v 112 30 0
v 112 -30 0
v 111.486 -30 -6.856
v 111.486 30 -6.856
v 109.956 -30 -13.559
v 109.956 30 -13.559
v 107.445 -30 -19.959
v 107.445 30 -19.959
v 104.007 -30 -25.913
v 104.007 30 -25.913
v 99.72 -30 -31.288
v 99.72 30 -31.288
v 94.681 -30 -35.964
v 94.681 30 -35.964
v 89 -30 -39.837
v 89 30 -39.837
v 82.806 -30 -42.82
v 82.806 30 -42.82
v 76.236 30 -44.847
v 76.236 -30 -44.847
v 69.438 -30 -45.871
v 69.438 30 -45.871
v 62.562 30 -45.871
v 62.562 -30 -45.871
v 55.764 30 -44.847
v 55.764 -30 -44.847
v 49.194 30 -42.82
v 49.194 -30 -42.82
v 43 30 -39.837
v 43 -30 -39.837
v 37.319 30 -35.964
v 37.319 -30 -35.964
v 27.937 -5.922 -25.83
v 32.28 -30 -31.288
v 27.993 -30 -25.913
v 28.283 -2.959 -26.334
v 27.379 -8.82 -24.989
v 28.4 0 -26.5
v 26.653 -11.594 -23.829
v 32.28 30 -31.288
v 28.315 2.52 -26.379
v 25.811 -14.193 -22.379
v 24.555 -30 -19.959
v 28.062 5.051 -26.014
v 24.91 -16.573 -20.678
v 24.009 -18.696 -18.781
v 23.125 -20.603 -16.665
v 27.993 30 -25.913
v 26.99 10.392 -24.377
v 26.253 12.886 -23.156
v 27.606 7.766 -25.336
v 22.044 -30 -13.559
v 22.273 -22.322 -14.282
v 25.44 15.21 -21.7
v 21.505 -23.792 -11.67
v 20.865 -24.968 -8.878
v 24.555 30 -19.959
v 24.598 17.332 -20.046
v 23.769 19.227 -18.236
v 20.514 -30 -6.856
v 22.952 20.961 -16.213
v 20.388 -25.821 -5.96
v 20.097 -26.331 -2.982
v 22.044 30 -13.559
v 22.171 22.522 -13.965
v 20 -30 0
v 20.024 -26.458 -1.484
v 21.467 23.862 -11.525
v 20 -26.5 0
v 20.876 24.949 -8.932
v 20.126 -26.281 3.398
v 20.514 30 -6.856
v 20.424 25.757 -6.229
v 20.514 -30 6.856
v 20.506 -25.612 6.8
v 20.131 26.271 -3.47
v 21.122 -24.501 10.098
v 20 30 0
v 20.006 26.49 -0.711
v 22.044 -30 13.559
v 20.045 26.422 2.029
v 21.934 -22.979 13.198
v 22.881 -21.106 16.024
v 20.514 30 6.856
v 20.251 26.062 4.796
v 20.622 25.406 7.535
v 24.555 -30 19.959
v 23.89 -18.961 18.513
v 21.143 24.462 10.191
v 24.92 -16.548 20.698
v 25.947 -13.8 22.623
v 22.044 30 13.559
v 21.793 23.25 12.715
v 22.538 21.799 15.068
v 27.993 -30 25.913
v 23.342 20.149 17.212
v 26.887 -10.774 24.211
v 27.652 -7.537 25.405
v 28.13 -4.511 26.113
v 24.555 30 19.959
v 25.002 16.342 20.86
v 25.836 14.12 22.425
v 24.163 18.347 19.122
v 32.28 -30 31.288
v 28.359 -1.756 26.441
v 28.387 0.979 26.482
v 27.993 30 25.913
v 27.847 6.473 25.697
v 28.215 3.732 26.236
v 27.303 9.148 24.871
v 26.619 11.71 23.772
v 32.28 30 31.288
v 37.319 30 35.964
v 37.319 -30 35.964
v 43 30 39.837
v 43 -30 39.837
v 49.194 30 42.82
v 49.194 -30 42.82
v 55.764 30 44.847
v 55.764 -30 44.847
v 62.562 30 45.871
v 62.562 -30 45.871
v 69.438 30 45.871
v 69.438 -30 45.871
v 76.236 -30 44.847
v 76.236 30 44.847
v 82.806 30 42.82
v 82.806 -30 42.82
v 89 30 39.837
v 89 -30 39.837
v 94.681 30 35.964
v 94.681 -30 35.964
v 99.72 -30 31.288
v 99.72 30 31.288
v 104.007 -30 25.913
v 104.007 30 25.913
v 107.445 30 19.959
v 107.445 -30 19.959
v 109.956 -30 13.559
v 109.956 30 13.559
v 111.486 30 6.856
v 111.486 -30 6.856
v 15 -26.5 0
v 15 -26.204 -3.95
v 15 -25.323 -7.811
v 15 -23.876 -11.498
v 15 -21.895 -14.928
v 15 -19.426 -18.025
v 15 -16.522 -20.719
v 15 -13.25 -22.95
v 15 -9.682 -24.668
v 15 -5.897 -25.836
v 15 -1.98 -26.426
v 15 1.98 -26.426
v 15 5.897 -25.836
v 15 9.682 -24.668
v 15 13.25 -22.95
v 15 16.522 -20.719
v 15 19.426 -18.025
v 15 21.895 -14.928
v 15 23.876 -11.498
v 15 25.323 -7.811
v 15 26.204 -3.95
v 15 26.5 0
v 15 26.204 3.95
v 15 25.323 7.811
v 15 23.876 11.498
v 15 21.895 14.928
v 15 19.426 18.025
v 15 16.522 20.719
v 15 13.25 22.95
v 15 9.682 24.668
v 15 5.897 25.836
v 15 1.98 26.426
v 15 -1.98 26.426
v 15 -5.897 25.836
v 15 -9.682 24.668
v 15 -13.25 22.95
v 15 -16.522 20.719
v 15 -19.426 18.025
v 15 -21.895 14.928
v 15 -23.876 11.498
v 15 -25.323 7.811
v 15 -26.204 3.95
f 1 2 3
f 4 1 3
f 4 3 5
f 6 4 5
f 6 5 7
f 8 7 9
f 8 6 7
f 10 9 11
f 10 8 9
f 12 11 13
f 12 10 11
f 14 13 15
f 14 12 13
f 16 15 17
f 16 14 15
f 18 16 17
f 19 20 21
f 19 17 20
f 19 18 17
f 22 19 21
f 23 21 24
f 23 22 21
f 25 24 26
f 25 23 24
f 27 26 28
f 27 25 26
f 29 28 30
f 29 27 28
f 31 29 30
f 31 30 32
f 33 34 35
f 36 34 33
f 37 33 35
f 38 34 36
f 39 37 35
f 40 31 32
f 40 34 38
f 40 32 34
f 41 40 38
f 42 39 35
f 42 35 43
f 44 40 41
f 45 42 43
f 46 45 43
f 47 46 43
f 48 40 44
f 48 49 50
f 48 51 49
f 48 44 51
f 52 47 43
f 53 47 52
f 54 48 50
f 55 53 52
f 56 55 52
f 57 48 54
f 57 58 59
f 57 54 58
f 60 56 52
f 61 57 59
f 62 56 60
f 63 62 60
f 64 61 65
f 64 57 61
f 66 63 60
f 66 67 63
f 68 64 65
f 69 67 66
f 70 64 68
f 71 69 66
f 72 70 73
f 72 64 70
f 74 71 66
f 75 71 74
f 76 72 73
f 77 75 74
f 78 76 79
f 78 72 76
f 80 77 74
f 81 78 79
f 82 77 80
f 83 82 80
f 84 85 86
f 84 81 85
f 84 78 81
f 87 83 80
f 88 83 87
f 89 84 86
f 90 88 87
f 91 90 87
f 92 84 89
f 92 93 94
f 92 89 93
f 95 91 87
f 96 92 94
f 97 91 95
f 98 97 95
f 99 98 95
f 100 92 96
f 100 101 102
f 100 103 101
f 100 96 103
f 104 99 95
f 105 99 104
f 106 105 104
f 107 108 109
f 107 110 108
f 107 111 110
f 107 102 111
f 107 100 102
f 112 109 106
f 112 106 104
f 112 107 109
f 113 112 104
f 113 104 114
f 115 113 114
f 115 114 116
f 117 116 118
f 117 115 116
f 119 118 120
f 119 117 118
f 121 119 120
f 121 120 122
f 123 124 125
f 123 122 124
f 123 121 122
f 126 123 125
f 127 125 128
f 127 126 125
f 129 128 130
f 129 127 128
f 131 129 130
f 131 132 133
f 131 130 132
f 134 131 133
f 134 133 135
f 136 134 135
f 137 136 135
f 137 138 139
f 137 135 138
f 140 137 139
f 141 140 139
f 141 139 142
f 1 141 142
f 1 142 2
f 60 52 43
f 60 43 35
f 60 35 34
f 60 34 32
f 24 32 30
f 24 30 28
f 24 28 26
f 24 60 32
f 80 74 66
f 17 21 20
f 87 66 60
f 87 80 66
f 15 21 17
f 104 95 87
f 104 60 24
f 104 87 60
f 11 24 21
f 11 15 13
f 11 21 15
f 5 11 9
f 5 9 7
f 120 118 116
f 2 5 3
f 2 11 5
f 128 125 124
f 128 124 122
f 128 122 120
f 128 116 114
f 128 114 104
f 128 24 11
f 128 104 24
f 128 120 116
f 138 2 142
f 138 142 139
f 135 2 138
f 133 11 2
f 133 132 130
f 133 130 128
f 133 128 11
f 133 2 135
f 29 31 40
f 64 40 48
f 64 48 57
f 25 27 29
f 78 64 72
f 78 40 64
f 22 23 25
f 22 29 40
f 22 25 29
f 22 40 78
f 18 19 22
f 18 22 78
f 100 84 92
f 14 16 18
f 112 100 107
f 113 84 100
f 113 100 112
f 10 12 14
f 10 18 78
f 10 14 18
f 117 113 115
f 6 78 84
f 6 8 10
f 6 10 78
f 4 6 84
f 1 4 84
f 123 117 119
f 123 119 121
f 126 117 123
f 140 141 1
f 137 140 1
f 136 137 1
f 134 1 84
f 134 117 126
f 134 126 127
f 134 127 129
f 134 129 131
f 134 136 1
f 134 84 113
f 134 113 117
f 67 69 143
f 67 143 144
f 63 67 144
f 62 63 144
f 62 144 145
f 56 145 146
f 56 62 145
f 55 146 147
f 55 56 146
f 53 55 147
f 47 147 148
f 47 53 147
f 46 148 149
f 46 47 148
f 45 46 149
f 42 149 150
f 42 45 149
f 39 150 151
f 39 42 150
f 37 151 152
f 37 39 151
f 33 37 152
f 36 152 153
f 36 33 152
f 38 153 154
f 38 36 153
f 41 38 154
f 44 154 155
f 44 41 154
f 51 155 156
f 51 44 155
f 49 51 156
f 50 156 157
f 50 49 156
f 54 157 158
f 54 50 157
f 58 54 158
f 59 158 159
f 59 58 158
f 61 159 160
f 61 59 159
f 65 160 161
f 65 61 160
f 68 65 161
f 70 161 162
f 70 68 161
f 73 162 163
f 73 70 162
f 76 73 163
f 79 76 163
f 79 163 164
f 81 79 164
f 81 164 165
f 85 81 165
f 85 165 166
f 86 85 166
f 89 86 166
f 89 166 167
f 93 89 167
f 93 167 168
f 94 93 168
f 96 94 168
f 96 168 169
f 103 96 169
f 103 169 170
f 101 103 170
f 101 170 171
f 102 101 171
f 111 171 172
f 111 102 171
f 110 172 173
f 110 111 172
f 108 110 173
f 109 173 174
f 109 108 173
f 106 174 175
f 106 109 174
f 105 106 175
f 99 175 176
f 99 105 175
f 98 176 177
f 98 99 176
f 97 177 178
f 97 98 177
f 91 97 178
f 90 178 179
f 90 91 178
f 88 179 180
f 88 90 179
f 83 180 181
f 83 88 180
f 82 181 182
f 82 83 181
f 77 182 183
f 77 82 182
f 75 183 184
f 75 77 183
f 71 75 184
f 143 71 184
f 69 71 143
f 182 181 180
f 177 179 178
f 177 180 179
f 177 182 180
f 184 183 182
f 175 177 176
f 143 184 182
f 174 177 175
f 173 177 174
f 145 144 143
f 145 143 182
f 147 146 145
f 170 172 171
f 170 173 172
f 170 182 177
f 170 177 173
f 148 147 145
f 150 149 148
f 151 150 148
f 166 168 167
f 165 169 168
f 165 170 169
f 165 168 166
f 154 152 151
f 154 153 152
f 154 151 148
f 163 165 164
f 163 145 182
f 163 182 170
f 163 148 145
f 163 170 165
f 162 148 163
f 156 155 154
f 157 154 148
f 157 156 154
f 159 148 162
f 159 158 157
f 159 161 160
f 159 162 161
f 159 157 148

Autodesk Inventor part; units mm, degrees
ref_plane "YZ Plane" through (0, 0, 0) normal (1, 0, 0) x (0, 1, 0)
ref_plane "XZ Plane" through (0, 0, 0) normal (0, 1, 0) x (-1, 0, 0)
ref_plane "XY Plane" through (0, 0, 0) normal (0, 0, 1) x (1, 0, 0)
sketch "Sketch1" plane through (0, 0, 0) normal (1, 0, 0) x (0, 1, 0)
  circle A0 centre (0, 0) radius 26.5
  dimension "d0" = 53
extrude "Extrusion1" add sketch "Sketch1" along normal blind 51
sketch "Sketch2" plane through (0, 0, 0) normal (0, 1, 0) x (-1, 0, 0)
  line L0 (-51, 26.5) -> (-51, -26.5) projected
  circle A0 centre (-51, 0) radius 46
  point P0 (0, 0)
  dimension "d3" = 92
extrude "Extrusion2" add sketch "Sketch2" along normal mid plane 60
move or copy body "Move Body1" bodies to move or copy 1 copy no translate (15, 0, 0)
properties part number "hip"
